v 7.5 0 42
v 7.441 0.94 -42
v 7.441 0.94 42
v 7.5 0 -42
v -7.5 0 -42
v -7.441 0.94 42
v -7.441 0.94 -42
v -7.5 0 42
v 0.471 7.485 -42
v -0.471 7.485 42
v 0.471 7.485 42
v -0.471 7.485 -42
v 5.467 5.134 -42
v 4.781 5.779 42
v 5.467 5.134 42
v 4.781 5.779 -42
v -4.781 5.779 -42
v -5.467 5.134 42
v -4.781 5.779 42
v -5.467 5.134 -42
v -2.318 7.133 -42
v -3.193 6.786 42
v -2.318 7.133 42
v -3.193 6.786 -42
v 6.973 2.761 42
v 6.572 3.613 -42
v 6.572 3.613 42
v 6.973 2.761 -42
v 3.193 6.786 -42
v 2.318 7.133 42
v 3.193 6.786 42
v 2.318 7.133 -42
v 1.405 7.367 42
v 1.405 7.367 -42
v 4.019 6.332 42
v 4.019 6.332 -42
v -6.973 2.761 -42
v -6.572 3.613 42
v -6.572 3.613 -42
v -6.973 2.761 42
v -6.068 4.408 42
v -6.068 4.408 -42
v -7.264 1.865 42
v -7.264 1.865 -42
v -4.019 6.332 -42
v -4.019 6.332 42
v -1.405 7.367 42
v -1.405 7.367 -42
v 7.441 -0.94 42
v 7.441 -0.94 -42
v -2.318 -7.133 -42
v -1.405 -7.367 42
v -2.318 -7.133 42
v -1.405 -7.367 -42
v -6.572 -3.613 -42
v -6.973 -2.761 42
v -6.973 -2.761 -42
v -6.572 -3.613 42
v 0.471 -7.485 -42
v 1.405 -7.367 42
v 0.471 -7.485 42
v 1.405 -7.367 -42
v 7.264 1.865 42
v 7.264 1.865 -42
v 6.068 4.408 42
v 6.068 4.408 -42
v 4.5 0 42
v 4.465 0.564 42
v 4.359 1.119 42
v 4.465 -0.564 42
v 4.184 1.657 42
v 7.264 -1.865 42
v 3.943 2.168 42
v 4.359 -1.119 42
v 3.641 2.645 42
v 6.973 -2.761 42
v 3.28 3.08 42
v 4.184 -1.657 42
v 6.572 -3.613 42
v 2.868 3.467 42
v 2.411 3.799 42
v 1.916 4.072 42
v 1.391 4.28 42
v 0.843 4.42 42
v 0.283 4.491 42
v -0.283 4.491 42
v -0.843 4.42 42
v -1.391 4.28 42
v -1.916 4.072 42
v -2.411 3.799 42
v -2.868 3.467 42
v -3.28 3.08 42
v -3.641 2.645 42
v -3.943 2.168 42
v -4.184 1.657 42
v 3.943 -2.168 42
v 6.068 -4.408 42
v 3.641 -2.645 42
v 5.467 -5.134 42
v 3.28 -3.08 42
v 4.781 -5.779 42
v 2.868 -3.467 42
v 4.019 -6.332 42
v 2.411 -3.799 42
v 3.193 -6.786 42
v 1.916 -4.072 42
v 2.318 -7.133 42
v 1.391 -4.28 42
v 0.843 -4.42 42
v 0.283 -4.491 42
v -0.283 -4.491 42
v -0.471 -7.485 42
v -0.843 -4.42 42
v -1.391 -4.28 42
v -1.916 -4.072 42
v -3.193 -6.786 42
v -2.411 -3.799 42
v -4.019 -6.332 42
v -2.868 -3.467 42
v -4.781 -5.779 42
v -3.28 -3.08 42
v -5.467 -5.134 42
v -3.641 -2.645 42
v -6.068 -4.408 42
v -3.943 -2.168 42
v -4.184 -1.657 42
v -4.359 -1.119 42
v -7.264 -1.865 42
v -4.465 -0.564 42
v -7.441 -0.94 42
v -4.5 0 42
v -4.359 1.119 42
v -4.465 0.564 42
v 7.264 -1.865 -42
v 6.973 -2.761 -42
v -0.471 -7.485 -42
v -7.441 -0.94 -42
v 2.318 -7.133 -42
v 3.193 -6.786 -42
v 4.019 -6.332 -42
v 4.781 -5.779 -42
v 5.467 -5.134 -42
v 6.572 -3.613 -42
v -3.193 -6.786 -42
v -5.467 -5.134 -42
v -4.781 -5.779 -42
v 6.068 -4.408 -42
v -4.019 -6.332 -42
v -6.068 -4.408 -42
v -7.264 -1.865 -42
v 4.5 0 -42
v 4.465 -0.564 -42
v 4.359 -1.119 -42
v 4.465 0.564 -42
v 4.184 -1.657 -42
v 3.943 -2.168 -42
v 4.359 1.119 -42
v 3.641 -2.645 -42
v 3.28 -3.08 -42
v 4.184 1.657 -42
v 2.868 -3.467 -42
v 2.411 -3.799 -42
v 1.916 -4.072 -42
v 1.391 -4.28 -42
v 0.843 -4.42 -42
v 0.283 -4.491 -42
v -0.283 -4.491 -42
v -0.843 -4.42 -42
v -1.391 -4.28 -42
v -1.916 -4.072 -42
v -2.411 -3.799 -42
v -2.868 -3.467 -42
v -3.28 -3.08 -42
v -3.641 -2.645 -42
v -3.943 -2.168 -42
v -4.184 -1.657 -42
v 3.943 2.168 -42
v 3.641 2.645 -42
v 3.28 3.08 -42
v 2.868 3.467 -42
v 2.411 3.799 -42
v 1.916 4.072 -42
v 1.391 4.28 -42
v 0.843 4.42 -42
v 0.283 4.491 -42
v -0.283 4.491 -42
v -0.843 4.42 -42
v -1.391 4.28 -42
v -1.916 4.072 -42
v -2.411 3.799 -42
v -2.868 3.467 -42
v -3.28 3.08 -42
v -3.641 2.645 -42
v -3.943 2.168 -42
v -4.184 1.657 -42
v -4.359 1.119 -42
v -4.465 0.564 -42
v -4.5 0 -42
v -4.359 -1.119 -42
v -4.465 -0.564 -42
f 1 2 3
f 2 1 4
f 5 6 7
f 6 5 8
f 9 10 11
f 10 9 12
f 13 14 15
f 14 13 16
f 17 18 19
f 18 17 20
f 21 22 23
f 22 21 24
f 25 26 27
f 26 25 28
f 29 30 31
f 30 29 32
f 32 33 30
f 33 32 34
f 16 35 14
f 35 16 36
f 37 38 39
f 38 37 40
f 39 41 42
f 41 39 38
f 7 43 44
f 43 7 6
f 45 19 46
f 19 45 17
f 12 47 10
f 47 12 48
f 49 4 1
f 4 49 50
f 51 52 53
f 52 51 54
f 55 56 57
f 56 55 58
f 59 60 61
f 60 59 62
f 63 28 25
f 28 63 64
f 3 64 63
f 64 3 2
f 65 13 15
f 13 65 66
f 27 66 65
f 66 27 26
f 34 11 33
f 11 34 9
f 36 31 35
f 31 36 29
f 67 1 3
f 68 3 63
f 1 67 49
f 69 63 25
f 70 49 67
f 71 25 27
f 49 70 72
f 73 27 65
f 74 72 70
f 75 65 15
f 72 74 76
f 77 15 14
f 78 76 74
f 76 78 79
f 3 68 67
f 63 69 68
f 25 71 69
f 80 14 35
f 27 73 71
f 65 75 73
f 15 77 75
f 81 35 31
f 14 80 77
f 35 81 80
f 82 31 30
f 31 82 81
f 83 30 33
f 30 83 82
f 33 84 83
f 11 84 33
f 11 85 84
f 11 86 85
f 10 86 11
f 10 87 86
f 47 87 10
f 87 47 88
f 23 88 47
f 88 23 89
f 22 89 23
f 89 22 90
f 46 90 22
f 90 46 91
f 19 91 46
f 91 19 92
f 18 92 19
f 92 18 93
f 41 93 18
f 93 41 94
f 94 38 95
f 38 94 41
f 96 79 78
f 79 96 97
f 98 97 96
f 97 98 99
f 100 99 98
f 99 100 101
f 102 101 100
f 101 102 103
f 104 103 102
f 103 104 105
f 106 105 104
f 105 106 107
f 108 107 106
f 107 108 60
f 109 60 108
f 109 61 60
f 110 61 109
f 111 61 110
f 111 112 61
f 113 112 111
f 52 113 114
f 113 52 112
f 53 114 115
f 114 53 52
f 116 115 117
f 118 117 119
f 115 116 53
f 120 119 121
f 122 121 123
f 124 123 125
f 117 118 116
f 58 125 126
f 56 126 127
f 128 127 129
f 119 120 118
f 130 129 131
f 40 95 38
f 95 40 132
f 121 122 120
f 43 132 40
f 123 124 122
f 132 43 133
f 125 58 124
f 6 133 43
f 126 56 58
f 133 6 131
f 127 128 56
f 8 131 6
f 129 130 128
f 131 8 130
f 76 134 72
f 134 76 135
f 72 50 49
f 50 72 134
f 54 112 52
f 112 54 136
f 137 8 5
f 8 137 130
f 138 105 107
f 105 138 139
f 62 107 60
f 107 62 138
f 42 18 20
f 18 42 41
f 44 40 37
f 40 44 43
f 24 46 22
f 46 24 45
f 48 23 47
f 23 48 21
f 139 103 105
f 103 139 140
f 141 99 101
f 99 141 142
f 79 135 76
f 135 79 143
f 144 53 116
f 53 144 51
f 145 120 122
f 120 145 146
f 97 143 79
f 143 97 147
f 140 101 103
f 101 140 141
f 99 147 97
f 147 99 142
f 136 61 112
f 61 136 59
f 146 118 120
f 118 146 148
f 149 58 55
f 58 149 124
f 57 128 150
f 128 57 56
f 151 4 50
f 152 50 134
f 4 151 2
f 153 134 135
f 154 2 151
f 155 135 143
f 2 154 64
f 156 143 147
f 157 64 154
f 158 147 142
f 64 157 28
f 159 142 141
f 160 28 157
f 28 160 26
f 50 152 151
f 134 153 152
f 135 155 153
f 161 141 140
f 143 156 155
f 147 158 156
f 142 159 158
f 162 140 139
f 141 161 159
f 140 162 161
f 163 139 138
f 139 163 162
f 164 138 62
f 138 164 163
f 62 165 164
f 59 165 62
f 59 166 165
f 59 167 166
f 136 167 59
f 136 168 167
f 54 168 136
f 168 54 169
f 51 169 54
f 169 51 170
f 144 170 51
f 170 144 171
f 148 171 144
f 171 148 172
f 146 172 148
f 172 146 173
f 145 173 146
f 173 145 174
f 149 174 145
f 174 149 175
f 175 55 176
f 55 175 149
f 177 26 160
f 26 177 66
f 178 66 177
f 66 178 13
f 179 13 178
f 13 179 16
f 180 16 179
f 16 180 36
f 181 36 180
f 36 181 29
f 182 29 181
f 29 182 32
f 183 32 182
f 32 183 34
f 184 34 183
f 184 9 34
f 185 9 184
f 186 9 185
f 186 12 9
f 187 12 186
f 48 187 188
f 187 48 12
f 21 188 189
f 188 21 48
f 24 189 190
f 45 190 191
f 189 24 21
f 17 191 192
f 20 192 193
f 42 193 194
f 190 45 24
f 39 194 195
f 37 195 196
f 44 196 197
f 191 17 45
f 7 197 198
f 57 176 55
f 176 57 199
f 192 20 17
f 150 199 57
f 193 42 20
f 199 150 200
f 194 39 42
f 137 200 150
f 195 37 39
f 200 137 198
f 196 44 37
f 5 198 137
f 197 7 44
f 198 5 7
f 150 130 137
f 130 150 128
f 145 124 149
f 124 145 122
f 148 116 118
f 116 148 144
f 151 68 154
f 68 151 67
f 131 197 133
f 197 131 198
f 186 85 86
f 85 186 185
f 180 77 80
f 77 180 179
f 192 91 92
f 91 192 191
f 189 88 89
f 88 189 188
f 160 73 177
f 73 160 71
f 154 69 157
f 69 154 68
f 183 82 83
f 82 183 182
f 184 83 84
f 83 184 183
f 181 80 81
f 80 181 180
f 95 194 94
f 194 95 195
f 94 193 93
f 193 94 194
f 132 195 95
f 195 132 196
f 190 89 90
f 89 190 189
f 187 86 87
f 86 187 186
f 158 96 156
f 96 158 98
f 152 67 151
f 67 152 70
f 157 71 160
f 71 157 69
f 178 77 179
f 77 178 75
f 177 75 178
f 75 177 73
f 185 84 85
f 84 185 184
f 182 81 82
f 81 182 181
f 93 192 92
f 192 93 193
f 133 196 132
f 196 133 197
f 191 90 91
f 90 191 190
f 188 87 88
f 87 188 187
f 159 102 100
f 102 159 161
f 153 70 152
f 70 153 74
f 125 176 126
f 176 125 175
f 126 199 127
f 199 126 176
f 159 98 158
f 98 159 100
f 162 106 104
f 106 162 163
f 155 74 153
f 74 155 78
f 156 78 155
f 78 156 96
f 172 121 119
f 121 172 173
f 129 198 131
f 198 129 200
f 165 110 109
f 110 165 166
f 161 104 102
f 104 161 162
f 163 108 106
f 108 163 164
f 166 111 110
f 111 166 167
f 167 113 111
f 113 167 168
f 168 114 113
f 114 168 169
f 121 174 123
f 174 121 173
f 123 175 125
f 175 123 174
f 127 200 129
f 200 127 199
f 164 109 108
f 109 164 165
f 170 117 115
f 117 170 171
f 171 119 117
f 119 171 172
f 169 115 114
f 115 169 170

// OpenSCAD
$fn = 50;


difference() {
	union() {
		translate(v = [0, 0, -42.0000000000]) {
			cylinder(h = 84, r = 7.5000000000);
		}
	}
	union() {
		translate(v = [0, 0, -100.0000000000]) {
			cylinder(h = 200, r = 4.5000000000);
		}
	}
}
